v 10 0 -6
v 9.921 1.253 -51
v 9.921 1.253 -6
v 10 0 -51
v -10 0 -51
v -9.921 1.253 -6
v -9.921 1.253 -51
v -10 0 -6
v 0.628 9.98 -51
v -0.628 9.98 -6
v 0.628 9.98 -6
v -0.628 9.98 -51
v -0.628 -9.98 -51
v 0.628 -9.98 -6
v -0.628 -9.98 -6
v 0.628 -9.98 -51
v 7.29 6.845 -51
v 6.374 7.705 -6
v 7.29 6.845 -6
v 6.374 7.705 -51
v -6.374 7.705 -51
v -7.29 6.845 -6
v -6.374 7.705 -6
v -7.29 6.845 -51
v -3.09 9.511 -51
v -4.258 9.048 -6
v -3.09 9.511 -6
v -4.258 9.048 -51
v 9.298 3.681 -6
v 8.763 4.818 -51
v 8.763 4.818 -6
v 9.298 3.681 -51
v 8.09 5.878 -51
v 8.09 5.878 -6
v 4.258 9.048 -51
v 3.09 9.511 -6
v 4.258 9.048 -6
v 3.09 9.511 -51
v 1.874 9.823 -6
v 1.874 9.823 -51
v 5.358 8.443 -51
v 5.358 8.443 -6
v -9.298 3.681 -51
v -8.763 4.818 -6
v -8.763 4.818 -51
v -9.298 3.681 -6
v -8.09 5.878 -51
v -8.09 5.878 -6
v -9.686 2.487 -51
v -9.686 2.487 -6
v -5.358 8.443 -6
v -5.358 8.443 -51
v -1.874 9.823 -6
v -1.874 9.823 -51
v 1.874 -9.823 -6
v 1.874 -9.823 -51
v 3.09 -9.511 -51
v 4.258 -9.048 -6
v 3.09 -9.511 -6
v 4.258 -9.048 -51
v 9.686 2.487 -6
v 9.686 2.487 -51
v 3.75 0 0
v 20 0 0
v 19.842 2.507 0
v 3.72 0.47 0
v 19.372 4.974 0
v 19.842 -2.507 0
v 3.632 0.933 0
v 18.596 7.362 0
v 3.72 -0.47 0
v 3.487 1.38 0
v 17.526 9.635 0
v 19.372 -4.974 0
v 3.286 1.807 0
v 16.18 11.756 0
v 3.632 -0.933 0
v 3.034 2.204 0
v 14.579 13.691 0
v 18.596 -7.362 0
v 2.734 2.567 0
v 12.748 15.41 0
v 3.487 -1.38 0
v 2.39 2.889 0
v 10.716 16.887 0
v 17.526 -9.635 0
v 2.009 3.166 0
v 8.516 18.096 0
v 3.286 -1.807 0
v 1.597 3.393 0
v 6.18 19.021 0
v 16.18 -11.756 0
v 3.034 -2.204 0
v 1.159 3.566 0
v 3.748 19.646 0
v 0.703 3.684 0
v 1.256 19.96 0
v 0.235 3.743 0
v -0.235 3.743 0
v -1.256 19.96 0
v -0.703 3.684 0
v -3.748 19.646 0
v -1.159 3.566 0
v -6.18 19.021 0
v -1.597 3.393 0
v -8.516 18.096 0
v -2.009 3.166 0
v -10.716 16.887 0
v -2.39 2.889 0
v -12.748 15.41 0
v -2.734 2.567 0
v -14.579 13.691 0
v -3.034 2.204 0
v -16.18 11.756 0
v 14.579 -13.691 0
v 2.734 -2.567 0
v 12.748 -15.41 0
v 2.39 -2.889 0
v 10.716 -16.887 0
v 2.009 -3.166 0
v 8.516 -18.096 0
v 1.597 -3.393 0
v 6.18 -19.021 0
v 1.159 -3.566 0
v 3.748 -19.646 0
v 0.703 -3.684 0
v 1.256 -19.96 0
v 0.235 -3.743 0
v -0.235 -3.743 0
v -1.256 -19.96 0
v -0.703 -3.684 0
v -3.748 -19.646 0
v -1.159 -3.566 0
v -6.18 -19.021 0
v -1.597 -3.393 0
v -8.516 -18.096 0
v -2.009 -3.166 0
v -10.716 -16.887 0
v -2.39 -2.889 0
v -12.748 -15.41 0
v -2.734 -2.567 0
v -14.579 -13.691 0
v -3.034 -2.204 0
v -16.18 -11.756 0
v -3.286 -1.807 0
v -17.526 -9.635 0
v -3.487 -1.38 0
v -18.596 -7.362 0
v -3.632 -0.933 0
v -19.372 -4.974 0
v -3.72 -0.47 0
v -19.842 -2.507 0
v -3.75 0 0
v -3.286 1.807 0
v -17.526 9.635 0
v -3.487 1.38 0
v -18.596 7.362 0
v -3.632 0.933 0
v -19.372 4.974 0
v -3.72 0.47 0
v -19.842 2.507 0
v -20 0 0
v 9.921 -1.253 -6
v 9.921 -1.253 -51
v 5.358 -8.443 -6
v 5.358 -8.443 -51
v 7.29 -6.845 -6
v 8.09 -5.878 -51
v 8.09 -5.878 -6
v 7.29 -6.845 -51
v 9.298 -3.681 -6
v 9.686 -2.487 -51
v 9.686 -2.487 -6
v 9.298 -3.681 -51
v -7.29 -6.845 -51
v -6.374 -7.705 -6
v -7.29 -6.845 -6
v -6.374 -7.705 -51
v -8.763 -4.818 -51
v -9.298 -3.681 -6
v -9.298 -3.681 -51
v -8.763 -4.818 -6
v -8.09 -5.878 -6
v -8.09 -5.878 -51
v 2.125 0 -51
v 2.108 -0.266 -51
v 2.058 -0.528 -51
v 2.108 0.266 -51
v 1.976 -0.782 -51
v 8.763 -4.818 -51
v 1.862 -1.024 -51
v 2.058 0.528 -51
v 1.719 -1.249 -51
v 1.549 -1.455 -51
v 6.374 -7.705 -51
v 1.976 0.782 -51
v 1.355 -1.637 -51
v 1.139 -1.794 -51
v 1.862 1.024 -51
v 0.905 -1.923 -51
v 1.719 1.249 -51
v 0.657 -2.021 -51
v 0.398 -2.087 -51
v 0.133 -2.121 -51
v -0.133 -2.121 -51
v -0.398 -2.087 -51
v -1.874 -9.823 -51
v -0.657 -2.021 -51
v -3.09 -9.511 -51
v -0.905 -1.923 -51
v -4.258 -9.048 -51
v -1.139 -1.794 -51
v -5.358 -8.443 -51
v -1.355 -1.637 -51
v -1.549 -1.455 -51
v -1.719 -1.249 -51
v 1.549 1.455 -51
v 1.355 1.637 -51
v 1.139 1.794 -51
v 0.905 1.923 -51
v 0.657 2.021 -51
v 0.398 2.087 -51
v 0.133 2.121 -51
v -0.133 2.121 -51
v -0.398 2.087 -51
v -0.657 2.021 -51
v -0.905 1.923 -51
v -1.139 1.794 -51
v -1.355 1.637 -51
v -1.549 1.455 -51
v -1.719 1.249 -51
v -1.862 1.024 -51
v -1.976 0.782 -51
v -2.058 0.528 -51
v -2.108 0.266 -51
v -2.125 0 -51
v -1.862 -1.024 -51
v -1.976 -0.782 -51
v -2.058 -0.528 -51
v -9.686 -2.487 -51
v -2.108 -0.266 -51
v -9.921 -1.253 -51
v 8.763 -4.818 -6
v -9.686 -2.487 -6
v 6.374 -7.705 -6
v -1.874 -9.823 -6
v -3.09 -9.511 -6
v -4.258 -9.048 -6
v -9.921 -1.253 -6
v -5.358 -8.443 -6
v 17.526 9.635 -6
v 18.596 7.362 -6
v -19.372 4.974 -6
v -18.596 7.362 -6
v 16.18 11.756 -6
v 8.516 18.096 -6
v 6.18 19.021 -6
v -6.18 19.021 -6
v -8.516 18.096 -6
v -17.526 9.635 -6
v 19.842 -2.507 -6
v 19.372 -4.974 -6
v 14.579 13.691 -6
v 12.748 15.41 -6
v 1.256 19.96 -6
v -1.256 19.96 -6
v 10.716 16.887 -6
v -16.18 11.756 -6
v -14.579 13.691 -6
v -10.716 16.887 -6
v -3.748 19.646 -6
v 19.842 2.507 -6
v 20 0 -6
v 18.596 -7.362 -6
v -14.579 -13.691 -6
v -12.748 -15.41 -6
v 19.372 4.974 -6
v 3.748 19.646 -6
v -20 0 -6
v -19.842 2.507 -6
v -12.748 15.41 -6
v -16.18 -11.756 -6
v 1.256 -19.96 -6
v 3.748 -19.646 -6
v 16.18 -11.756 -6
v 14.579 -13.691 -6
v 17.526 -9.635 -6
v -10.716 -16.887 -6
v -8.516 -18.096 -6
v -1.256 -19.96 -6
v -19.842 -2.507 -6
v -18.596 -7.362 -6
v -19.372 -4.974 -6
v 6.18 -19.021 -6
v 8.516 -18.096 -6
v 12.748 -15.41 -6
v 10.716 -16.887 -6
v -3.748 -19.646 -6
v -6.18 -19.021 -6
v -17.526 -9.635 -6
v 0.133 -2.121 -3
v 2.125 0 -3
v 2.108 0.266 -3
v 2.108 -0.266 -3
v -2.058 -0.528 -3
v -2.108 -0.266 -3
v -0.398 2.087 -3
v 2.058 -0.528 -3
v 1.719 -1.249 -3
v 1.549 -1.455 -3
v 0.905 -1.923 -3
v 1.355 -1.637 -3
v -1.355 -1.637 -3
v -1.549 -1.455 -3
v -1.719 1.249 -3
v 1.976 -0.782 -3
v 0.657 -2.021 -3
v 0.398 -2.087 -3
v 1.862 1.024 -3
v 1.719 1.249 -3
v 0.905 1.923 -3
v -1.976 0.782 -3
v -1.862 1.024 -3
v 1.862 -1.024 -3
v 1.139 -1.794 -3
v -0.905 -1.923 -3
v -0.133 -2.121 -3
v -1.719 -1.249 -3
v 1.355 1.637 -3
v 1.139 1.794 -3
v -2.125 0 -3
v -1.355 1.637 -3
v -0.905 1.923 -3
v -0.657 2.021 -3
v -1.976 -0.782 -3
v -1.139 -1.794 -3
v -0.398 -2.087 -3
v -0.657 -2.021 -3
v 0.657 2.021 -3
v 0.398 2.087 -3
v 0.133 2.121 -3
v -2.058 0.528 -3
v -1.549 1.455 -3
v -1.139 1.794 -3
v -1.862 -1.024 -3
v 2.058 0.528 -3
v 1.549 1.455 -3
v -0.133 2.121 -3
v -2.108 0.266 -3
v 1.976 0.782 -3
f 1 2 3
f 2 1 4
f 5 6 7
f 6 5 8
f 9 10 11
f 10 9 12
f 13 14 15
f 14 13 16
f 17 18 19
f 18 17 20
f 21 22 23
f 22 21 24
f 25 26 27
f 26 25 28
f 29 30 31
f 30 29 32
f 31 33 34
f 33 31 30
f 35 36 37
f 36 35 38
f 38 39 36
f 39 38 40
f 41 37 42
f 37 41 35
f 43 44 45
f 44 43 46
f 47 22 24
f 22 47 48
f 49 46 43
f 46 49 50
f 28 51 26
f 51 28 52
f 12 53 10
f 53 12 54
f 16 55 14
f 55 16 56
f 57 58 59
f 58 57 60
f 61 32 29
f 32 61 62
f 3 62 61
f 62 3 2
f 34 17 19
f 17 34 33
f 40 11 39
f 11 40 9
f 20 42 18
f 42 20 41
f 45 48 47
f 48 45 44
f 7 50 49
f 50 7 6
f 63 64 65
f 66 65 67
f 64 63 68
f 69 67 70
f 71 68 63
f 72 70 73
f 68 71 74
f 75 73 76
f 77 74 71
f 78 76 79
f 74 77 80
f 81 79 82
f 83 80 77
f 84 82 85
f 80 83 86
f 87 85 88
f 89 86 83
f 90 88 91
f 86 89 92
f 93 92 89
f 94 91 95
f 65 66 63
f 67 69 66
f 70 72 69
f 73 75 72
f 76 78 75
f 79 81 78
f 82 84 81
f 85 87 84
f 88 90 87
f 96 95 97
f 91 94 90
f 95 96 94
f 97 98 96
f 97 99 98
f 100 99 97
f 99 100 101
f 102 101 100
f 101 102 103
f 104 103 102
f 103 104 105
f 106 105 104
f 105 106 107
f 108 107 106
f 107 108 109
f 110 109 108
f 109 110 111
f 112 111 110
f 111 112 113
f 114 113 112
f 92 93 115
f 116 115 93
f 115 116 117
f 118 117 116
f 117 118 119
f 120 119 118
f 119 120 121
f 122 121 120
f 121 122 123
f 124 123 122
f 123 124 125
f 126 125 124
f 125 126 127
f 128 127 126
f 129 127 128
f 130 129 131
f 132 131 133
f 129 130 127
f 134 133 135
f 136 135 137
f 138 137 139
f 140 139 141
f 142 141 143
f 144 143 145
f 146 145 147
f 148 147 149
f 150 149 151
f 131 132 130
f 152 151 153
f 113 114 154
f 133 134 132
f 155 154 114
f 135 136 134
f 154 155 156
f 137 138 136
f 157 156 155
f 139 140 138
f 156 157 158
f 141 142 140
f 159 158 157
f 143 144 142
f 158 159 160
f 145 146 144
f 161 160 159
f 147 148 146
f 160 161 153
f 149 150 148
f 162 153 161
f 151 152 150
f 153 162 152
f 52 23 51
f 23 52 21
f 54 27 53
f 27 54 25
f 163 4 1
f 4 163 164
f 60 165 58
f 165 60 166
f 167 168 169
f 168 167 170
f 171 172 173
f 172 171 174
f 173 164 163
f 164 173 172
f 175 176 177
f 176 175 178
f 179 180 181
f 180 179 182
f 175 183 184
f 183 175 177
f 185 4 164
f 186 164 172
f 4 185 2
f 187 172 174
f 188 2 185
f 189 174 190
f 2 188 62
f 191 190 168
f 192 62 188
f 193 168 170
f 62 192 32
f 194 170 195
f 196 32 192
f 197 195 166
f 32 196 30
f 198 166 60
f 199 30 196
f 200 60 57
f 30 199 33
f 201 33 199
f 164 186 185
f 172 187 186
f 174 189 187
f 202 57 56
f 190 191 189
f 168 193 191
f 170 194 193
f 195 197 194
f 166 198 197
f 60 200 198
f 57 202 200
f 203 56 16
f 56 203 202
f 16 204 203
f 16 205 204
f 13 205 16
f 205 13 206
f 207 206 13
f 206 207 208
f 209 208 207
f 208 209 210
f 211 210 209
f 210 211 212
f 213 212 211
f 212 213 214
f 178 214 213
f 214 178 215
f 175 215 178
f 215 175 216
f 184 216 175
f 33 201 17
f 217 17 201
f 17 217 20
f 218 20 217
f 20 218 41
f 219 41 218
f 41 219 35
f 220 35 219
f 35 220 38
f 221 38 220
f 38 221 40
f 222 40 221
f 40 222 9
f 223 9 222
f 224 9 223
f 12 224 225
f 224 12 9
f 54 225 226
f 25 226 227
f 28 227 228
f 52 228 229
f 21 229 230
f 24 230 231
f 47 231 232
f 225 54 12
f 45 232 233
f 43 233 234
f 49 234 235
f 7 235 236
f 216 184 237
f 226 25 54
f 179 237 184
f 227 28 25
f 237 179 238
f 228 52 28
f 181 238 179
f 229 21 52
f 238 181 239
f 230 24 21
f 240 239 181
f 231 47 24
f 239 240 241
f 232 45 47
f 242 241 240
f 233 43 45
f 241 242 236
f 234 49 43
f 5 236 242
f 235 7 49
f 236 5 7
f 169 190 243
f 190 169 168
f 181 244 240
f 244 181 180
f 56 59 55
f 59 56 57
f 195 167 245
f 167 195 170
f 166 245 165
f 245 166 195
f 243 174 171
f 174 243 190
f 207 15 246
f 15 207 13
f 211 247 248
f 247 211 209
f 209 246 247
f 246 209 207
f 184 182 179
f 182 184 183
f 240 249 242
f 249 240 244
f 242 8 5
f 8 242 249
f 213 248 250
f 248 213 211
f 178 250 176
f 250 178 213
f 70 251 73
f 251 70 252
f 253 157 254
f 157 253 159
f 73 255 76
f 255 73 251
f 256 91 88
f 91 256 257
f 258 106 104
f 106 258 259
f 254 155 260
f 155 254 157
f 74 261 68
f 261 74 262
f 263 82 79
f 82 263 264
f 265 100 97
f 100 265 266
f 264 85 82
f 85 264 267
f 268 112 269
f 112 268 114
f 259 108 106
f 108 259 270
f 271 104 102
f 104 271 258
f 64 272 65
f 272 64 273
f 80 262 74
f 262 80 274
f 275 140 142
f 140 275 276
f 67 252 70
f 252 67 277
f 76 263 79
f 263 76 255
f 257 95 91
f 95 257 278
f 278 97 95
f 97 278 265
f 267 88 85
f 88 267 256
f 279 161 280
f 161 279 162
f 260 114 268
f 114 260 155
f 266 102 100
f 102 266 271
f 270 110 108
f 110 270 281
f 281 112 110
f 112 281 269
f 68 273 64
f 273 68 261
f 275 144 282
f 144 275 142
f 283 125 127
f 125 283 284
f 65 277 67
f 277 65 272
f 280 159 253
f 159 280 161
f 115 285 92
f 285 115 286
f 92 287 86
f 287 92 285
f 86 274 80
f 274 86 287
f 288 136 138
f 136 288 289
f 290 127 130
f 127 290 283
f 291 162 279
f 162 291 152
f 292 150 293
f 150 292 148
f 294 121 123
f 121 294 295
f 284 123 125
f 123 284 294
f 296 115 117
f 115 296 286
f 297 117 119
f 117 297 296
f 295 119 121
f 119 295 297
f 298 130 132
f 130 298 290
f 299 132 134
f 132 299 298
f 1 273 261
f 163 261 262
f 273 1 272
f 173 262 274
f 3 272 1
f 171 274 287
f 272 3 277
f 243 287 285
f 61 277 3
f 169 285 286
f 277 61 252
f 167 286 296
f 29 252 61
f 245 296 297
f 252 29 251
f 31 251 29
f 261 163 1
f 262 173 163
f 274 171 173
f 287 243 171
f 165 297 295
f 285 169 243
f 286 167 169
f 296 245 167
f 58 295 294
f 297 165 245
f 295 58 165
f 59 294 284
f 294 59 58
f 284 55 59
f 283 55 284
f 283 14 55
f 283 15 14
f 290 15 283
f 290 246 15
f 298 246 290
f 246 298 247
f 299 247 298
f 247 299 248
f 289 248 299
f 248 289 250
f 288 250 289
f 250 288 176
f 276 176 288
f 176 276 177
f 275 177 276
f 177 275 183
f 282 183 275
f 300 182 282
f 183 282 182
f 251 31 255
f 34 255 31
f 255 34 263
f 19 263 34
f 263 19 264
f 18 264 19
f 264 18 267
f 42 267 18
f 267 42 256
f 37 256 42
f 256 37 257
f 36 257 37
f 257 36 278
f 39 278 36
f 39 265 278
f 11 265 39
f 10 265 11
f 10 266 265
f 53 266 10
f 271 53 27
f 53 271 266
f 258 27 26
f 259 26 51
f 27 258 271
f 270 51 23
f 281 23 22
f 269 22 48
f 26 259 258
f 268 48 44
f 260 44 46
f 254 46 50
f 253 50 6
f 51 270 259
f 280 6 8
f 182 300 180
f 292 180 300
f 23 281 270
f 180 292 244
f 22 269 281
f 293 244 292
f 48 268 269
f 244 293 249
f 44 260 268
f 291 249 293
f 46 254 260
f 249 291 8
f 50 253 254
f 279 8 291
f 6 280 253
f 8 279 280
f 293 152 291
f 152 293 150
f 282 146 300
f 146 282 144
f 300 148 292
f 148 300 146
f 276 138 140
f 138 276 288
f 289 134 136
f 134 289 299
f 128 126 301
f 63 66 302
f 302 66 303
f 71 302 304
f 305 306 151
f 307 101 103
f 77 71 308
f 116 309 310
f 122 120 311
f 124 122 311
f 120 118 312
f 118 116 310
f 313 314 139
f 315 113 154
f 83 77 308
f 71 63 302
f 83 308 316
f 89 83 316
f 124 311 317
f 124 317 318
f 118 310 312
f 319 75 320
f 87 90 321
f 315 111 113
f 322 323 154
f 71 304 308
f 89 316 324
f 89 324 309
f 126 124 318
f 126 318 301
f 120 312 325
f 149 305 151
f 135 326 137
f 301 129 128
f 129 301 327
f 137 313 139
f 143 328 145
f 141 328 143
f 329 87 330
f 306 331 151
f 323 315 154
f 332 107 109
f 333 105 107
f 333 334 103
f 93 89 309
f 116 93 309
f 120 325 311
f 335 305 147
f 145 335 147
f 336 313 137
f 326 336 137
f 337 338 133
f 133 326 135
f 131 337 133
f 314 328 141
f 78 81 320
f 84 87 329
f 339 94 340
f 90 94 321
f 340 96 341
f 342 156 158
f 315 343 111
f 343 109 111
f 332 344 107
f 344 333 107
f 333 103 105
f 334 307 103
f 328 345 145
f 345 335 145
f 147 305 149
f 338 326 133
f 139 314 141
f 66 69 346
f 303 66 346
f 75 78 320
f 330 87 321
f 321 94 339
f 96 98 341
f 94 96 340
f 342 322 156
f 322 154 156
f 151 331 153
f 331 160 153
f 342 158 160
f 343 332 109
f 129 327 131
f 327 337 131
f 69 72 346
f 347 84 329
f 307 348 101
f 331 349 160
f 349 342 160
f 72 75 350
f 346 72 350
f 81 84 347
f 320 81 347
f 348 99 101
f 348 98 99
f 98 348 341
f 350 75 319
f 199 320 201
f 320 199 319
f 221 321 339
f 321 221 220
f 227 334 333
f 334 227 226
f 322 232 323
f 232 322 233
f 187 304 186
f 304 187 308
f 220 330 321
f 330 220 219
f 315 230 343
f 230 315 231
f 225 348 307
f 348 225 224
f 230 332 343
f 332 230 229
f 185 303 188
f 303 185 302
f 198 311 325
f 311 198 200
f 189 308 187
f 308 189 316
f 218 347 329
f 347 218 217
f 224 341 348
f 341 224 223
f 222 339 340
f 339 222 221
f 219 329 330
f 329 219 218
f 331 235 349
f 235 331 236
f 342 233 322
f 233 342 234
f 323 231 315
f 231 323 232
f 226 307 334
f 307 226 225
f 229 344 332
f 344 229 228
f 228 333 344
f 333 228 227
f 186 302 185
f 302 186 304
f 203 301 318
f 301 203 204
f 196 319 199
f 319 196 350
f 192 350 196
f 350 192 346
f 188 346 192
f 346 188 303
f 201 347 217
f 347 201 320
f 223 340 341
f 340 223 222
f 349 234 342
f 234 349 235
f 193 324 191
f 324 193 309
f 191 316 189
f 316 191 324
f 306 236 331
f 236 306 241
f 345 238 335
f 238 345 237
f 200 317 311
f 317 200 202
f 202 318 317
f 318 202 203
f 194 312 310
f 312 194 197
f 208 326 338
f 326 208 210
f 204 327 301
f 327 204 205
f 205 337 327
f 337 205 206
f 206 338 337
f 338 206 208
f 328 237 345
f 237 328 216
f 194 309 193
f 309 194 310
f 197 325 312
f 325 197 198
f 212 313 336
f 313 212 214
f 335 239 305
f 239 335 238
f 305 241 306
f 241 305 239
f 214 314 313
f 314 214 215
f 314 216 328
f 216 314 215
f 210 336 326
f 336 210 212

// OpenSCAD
$fn = 50;


difference() {
	union() {
		translate(v = [0, 0, -51.0000000000]) {
			cylinder(h = 51, r = 10.0000000000);
		}
		translate(v = [0, 0, -6.0000000000]) {
			cylinder(h = 6, r = 20.0000000000);
		}
	}
	union() {
		translate(v = [0, 0, 0]) {
			rotate(a = [0, 0, 0]) {
				difference() {
					union() {
						#translate(v = [0, 0, -51.0000000000]) {
							cylinder(h = 51, r = 2.0000000000);
						}
						#translate(v = [0, 0, -3]) {
							cylinder(h = 3, r = 10.0000000000, r1 = 2.1250000000, r2 = 3.7500000000);
						}
						#translate(v = [0, 0, -51.0000000000]) {
							cylinder(h = 51, r = 2.1250000000);
						}
						#translate(v = [0, 0, -51.0000000000]) {
							cylinder(h = 51, r = 2.0000000000);
						}
					}
					union();
				}
			}
		}
	}
}
